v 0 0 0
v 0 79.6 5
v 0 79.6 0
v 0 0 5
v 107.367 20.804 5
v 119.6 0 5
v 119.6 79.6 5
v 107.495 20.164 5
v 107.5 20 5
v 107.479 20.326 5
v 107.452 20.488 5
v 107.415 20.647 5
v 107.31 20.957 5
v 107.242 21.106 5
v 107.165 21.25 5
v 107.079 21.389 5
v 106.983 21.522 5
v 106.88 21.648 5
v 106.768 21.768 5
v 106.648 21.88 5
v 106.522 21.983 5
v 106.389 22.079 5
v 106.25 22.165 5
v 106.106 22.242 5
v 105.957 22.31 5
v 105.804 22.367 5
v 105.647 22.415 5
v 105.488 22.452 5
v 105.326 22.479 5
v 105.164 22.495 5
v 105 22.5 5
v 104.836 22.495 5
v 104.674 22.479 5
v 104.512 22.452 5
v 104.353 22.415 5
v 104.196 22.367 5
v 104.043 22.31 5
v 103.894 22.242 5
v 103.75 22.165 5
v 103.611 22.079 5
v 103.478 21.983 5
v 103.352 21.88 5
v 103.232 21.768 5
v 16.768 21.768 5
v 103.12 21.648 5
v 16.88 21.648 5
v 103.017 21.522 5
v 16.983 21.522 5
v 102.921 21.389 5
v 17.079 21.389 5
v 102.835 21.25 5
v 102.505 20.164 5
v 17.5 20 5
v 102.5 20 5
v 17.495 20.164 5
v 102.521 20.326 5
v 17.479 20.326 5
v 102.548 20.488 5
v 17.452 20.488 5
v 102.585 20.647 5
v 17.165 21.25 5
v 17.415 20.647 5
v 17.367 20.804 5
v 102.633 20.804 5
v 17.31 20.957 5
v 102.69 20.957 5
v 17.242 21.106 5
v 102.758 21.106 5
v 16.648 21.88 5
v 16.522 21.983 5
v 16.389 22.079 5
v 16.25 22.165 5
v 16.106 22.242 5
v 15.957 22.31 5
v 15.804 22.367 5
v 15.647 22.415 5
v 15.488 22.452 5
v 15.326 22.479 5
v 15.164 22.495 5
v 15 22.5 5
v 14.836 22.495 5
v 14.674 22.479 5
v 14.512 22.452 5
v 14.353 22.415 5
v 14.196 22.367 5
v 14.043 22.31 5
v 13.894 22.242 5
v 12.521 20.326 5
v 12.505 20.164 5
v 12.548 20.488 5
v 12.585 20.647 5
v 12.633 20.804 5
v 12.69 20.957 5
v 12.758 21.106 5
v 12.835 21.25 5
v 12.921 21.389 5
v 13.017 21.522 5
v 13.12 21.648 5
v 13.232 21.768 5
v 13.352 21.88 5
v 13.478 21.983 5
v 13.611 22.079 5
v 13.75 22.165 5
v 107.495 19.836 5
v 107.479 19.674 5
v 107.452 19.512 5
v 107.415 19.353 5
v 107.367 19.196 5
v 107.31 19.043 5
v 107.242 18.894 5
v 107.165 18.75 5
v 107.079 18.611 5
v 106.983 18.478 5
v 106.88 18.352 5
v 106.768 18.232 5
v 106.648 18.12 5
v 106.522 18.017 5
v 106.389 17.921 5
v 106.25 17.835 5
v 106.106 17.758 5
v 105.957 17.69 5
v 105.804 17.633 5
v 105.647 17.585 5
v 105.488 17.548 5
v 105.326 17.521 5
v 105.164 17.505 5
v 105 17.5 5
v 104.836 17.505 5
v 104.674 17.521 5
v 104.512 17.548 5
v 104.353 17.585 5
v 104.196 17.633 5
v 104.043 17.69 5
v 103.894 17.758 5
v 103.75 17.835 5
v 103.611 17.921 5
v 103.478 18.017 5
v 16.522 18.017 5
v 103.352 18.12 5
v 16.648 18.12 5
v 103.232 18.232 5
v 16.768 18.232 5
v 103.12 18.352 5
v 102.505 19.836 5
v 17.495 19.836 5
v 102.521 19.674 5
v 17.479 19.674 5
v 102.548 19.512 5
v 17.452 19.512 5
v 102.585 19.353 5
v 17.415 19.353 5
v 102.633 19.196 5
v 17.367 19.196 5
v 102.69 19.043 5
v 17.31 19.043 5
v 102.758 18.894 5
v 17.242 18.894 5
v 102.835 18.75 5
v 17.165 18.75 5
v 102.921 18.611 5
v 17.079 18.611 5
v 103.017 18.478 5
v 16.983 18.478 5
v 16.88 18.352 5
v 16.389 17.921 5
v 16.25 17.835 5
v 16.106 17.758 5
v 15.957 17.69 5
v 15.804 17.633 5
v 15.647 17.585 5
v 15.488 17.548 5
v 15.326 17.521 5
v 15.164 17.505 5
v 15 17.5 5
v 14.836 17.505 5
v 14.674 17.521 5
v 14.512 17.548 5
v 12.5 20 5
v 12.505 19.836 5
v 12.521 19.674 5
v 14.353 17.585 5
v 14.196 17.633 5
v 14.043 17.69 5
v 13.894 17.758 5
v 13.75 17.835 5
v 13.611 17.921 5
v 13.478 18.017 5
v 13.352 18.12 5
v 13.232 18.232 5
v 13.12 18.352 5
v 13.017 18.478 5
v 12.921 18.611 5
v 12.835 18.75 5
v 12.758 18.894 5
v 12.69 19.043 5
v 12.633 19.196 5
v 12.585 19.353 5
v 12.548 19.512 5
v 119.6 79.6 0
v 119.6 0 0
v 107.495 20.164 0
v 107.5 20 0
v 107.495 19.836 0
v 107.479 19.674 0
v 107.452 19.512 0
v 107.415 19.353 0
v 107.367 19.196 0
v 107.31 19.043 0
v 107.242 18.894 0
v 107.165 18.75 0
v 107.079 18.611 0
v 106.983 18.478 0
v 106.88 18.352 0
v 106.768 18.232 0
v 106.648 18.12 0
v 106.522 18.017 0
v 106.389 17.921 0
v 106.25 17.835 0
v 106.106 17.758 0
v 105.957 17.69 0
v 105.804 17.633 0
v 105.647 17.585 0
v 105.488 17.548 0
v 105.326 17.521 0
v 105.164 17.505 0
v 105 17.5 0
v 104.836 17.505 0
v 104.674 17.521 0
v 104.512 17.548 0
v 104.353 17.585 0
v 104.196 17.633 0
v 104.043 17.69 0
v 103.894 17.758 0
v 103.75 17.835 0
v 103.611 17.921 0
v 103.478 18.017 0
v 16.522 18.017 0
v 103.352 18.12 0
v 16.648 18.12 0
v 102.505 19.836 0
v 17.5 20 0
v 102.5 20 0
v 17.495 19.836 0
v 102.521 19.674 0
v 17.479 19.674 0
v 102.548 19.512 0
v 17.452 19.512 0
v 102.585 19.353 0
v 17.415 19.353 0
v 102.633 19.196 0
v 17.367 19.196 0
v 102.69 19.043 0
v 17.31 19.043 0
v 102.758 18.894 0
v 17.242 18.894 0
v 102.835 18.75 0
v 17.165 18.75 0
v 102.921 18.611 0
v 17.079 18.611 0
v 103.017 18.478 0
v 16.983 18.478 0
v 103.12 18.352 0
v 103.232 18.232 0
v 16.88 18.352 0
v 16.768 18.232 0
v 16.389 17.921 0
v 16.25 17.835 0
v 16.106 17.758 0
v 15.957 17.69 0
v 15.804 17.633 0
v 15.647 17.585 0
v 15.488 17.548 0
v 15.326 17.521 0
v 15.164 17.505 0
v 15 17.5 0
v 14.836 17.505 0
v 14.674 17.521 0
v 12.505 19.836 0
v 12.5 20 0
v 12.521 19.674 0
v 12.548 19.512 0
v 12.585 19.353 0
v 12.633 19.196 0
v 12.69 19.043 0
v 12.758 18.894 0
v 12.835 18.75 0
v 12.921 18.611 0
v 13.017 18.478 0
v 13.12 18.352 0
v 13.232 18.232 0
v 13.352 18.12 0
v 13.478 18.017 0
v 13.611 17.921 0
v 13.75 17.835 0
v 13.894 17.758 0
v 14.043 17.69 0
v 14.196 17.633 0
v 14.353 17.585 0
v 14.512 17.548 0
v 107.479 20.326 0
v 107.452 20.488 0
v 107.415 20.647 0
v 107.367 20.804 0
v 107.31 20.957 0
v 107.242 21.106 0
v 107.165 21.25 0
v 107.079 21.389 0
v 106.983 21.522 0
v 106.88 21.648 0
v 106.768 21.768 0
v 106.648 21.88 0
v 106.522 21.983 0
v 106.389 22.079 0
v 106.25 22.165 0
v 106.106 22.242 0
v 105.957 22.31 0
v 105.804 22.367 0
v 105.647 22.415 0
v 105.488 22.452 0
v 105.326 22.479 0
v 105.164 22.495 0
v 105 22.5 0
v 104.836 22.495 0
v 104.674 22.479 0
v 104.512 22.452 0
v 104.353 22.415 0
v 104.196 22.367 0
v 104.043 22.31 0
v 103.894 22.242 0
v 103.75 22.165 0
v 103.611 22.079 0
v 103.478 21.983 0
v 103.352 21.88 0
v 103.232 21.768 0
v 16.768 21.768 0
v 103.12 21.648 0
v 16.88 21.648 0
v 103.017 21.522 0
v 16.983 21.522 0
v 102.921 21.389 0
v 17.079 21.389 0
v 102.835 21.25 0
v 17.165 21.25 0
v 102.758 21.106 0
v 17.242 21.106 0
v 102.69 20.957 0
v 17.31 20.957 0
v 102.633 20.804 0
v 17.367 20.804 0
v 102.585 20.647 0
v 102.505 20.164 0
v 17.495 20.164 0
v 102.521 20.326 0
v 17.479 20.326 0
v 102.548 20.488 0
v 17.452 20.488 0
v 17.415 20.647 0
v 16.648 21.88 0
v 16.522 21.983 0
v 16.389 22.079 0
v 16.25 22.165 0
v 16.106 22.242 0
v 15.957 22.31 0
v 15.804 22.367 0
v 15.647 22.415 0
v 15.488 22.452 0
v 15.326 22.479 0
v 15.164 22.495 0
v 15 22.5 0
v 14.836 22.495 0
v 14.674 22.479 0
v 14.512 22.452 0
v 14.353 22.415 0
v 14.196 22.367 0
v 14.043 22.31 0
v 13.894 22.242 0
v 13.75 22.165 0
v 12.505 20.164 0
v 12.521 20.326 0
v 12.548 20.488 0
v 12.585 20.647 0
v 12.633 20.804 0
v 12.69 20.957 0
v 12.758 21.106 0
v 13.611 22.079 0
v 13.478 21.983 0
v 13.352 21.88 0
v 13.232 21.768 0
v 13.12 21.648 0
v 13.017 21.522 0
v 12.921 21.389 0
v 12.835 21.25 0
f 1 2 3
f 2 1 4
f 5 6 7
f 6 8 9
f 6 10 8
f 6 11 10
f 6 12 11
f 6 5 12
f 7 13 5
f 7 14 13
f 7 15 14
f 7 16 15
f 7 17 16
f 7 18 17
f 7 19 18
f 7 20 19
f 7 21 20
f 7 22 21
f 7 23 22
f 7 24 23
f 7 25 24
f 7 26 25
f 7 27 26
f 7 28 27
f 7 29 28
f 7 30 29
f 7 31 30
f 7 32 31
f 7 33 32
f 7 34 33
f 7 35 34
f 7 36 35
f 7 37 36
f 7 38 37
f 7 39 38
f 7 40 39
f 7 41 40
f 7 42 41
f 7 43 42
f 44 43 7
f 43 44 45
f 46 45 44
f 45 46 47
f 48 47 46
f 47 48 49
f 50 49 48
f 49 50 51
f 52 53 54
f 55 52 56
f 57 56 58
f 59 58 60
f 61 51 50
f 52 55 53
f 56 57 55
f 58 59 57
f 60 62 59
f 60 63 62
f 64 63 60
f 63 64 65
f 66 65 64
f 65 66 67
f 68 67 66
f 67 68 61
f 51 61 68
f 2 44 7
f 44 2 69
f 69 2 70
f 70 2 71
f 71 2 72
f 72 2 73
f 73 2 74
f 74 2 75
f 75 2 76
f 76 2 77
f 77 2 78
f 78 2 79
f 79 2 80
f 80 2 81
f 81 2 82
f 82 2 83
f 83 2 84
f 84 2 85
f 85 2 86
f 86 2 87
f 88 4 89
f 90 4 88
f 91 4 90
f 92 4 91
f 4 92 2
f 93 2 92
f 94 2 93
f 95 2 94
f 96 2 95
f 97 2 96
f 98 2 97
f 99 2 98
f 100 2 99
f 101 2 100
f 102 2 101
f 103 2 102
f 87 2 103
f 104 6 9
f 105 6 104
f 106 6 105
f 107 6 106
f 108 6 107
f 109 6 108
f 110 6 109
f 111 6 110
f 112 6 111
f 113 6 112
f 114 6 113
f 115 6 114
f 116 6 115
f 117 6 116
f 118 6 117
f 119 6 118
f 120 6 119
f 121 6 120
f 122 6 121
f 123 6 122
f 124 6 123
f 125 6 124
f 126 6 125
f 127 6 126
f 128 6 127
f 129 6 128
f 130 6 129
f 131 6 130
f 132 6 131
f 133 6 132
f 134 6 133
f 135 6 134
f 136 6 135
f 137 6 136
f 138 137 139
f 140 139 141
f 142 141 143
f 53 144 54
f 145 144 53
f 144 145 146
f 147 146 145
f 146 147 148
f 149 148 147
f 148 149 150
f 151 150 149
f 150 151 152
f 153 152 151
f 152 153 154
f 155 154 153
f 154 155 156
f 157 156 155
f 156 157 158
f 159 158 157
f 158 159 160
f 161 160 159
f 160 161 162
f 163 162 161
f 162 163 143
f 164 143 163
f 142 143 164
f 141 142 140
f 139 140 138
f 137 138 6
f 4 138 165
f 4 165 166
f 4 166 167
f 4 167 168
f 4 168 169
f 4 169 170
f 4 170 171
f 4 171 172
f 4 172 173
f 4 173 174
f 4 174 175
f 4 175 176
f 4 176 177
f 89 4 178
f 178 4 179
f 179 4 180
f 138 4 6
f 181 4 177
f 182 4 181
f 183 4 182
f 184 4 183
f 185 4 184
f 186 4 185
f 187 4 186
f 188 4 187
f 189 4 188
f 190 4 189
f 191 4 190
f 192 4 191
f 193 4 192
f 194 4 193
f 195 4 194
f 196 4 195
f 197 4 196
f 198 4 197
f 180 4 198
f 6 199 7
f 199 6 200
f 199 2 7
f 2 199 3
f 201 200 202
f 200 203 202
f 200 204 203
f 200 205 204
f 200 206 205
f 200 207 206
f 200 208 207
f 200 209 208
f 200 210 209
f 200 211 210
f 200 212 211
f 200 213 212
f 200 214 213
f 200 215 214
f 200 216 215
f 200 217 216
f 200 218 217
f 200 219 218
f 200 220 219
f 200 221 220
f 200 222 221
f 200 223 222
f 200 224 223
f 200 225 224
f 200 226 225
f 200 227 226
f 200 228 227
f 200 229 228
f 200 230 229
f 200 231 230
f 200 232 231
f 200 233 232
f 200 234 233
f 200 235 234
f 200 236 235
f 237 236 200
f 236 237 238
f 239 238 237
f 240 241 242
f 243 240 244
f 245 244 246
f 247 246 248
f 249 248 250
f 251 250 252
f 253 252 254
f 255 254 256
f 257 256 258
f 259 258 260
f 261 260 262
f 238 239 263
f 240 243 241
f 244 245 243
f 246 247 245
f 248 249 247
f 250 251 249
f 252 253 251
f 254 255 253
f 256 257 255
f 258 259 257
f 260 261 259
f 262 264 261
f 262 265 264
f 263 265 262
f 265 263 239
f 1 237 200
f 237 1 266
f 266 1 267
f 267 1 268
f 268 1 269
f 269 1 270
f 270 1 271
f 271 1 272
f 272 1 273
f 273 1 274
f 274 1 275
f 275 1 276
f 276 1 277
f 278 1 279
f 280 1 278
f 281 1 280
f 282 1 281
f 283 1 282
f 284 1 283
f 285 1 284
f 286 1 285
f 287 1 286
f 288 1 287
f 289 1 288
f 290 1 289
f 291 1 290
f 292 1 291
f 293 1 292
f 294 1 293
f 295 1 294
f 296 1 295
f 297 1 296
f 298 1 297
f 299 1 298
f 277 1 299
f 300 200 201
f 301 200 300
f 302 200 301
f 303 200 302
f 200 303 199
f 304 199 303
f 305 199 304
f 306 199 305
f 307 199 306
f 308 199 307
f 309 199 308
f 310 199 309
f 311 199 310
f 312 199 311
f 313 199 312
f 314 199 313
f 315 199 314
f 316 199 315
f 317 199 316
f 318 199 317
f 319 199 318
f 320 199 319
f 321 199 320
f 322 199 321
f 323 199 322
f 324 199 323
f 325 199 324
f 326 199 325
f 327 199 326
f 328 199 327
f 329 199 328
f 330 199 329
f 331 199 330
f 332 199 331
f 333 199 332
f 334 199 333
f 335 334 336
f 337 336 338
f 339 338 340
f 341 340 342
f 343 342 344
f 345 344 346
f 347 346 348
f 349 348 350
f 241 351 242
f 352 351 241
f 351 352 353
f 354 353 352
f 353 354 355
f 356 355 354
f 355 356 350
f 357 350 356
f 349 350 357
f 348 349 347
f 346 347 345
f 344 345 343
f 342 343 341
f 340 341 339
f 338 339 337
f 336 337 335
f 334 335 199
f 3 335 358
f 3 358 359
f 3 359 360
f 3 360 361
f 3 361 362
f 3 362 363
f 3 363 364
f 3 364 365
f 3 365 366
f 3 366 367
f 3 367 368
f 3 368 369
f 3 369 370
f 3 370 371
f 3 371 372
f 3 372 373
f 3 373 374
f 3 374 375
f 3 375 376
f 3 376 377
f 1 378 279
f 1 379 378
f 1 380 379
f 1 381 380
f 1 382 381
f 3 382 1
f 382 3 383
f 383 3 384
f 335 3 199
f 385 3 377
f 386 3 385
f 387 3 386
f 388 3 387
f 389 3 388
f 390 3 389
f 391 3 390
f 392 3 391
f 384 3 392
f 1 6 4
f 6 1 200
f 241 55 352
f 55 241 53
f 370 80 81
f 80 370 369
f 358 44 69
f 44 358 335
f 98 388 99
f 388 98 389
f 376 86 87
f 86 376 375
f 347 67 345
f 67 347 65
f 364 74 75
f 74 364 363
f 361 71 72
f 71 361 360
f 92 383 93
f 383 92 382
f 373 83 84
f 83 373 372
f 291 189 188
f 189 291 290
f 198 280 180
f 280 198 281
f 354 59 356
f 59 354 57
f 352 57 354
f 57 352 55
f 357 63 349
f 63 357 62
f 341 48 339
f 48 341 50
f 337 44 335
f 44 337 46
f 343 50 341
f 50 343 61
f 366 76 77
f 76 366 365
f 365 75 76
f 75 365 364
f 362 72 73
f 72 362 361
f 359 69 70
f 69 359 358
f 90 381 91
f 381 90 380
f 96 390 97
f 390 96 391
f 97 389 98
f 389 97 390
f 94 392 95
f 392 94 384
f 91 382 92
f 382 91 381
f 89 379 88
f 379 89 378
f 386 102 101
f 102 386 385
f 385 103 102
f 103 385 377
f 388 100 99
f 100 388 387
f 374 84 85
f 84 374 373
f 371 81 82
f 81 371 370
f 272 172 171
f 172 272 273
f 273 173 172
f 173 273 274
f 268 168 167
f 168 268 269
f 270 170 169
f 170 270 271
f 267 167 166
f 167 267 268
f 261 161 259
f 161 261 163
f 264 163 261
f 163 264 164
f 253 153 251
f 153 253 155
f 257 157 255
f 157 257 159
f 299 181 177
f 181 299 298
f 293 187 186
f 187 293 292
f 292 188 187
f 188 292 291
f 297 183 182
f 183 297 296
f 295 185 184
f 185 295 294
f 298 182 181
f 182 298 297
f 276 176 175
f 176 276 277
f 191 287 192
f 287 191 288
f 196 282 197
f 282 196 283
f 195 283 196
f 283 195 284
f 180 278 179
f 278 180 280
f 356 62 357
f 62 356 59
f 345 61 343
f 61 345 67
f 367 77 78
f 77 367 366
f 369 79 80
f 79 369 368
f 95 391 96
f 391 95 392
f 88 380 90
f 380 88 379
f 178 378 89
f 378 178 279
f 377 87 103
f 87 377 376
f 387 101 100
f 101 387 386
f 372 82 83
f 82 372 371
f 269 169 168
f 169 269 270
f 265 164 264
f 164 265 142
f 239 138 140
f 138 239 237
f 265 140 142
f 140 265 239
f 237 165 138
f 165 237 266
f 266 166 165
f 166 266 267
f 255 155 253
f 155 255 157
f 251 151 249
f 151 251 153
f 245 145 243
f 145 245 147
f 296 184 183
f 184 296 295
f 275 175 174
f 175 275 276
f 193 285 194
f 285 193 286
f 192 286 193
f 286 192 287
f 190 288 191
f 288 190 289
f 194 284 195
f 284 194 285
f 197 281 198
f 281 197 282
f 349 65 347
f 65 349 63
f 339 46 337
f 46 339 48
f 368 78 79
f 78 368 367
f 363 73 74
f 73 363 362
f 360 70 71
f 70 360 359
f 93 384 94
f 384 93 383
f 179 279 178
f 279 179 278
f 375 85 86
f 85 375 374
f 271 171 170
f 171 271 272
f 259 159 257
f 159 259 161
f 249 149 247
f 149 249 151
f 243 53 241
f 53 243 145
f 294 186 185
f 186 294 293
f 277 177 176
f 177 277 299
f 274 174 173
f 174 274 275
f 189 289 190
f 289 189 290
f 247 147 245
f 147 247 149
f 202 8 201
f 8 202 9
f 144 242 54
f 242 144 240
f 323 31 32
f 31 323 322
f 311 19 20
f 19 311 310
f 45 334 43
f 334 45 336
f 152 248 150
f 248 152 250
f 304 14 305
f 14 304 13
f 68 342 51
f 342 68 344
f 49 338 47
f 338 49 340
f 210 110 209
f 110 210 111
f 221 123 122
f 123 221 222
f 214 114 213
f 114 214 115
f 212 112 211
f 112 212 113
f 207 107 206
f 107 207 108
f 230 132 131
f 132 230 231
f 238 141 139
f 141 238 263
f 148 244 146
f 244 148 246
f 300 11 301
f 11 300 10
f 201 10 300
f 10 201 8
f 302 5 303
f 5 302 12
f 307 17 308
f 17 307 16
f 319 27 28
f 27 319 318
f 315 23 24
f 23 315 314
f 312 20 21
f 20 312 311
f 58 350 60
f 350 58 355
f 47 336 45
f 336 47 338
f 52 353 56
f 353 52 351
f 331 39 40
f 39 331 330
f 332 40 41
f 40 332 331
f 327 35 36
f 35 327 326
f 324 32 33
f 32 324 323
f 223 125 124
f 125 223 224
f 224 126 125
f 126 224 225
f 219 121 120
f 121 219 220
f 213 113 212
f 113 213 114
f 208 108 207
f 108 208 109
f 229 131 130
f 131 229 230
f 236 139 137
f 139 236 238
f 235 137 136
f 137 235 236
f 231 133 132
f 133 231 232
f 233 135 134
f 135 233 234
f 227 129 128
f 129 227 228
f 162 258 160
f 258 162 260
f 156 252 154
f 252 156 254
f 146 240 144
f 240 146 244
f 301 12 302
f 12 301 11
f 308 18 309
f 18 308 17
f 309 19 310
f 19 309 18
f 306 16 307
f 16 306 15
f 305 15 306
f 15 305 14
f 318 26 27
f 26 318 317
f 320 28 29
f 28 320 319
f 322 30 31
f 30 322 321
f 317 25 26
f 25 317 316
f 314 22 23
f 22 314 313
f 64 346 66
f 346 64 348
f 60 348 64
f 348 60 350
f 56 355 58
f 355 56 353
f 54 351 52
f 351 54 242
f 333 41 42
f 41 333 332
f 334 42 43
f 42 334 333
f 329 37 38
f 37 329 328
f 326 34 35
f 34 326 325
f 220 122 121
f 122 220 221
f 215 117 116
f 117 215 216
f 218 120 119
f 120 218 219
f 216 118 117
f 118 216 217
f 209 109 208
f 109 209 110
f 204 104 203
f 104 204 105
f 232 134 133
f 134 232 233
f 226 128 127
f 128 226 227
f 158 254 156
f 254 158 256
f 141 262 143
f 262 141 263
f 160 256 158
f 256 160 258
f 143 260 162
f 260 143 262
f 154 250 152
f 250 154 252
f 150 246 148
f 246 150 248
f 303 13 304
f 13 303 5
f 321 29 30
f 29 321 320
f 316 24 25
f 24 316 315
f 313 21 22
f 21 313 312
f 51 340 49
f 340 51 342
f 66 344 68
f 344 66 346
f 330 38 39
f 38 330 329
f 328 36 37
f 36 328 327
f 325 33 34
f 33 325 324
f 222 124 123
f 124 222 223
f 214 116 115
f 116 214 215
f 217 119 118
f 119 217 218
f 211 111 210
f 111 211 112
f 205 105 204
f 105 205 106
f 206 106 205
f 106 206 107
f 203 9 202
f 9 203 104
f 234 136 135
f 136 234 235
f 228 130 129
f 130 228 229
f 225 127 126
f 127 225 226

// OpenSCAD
// organizer-v12 / lid
// 3D AI Designer V1.1 Geometry Engine uretimi - tum olculer mm.

// ============ PARAMETERS ============
clearance = 0.2;  // fit_to body
width = 119.6;
depth = 79.6;
height = 5;
$fn = 96;  // dairesel yuzey cozunurlugu (bbox dogrulugu icin)
hole_h1_dia = 5;
hole_h1_x = 15;
hole_h1_y = 20;
hole_h2_dia = 5;
hole_h2_x = 105;
hole_h2_y = 20;

// ============ GEOMETRY + BOOLEAN OPERATIONS ============
difference() { cube([119.6, 79.6, 5]); translate([15, 20, -1]) cylinder(d = 5, h = 7); translate([105, 20, -1]) cylinder(d = 5, h = 7); }

// ============ ASSEMBLY / NOTLAR ============
// NOT: assembly metadata: validation disi (simulasyon yok)

// ============ EXPORT ============
// Export harici arac ile yapilir (Export-Stl.ps1).
